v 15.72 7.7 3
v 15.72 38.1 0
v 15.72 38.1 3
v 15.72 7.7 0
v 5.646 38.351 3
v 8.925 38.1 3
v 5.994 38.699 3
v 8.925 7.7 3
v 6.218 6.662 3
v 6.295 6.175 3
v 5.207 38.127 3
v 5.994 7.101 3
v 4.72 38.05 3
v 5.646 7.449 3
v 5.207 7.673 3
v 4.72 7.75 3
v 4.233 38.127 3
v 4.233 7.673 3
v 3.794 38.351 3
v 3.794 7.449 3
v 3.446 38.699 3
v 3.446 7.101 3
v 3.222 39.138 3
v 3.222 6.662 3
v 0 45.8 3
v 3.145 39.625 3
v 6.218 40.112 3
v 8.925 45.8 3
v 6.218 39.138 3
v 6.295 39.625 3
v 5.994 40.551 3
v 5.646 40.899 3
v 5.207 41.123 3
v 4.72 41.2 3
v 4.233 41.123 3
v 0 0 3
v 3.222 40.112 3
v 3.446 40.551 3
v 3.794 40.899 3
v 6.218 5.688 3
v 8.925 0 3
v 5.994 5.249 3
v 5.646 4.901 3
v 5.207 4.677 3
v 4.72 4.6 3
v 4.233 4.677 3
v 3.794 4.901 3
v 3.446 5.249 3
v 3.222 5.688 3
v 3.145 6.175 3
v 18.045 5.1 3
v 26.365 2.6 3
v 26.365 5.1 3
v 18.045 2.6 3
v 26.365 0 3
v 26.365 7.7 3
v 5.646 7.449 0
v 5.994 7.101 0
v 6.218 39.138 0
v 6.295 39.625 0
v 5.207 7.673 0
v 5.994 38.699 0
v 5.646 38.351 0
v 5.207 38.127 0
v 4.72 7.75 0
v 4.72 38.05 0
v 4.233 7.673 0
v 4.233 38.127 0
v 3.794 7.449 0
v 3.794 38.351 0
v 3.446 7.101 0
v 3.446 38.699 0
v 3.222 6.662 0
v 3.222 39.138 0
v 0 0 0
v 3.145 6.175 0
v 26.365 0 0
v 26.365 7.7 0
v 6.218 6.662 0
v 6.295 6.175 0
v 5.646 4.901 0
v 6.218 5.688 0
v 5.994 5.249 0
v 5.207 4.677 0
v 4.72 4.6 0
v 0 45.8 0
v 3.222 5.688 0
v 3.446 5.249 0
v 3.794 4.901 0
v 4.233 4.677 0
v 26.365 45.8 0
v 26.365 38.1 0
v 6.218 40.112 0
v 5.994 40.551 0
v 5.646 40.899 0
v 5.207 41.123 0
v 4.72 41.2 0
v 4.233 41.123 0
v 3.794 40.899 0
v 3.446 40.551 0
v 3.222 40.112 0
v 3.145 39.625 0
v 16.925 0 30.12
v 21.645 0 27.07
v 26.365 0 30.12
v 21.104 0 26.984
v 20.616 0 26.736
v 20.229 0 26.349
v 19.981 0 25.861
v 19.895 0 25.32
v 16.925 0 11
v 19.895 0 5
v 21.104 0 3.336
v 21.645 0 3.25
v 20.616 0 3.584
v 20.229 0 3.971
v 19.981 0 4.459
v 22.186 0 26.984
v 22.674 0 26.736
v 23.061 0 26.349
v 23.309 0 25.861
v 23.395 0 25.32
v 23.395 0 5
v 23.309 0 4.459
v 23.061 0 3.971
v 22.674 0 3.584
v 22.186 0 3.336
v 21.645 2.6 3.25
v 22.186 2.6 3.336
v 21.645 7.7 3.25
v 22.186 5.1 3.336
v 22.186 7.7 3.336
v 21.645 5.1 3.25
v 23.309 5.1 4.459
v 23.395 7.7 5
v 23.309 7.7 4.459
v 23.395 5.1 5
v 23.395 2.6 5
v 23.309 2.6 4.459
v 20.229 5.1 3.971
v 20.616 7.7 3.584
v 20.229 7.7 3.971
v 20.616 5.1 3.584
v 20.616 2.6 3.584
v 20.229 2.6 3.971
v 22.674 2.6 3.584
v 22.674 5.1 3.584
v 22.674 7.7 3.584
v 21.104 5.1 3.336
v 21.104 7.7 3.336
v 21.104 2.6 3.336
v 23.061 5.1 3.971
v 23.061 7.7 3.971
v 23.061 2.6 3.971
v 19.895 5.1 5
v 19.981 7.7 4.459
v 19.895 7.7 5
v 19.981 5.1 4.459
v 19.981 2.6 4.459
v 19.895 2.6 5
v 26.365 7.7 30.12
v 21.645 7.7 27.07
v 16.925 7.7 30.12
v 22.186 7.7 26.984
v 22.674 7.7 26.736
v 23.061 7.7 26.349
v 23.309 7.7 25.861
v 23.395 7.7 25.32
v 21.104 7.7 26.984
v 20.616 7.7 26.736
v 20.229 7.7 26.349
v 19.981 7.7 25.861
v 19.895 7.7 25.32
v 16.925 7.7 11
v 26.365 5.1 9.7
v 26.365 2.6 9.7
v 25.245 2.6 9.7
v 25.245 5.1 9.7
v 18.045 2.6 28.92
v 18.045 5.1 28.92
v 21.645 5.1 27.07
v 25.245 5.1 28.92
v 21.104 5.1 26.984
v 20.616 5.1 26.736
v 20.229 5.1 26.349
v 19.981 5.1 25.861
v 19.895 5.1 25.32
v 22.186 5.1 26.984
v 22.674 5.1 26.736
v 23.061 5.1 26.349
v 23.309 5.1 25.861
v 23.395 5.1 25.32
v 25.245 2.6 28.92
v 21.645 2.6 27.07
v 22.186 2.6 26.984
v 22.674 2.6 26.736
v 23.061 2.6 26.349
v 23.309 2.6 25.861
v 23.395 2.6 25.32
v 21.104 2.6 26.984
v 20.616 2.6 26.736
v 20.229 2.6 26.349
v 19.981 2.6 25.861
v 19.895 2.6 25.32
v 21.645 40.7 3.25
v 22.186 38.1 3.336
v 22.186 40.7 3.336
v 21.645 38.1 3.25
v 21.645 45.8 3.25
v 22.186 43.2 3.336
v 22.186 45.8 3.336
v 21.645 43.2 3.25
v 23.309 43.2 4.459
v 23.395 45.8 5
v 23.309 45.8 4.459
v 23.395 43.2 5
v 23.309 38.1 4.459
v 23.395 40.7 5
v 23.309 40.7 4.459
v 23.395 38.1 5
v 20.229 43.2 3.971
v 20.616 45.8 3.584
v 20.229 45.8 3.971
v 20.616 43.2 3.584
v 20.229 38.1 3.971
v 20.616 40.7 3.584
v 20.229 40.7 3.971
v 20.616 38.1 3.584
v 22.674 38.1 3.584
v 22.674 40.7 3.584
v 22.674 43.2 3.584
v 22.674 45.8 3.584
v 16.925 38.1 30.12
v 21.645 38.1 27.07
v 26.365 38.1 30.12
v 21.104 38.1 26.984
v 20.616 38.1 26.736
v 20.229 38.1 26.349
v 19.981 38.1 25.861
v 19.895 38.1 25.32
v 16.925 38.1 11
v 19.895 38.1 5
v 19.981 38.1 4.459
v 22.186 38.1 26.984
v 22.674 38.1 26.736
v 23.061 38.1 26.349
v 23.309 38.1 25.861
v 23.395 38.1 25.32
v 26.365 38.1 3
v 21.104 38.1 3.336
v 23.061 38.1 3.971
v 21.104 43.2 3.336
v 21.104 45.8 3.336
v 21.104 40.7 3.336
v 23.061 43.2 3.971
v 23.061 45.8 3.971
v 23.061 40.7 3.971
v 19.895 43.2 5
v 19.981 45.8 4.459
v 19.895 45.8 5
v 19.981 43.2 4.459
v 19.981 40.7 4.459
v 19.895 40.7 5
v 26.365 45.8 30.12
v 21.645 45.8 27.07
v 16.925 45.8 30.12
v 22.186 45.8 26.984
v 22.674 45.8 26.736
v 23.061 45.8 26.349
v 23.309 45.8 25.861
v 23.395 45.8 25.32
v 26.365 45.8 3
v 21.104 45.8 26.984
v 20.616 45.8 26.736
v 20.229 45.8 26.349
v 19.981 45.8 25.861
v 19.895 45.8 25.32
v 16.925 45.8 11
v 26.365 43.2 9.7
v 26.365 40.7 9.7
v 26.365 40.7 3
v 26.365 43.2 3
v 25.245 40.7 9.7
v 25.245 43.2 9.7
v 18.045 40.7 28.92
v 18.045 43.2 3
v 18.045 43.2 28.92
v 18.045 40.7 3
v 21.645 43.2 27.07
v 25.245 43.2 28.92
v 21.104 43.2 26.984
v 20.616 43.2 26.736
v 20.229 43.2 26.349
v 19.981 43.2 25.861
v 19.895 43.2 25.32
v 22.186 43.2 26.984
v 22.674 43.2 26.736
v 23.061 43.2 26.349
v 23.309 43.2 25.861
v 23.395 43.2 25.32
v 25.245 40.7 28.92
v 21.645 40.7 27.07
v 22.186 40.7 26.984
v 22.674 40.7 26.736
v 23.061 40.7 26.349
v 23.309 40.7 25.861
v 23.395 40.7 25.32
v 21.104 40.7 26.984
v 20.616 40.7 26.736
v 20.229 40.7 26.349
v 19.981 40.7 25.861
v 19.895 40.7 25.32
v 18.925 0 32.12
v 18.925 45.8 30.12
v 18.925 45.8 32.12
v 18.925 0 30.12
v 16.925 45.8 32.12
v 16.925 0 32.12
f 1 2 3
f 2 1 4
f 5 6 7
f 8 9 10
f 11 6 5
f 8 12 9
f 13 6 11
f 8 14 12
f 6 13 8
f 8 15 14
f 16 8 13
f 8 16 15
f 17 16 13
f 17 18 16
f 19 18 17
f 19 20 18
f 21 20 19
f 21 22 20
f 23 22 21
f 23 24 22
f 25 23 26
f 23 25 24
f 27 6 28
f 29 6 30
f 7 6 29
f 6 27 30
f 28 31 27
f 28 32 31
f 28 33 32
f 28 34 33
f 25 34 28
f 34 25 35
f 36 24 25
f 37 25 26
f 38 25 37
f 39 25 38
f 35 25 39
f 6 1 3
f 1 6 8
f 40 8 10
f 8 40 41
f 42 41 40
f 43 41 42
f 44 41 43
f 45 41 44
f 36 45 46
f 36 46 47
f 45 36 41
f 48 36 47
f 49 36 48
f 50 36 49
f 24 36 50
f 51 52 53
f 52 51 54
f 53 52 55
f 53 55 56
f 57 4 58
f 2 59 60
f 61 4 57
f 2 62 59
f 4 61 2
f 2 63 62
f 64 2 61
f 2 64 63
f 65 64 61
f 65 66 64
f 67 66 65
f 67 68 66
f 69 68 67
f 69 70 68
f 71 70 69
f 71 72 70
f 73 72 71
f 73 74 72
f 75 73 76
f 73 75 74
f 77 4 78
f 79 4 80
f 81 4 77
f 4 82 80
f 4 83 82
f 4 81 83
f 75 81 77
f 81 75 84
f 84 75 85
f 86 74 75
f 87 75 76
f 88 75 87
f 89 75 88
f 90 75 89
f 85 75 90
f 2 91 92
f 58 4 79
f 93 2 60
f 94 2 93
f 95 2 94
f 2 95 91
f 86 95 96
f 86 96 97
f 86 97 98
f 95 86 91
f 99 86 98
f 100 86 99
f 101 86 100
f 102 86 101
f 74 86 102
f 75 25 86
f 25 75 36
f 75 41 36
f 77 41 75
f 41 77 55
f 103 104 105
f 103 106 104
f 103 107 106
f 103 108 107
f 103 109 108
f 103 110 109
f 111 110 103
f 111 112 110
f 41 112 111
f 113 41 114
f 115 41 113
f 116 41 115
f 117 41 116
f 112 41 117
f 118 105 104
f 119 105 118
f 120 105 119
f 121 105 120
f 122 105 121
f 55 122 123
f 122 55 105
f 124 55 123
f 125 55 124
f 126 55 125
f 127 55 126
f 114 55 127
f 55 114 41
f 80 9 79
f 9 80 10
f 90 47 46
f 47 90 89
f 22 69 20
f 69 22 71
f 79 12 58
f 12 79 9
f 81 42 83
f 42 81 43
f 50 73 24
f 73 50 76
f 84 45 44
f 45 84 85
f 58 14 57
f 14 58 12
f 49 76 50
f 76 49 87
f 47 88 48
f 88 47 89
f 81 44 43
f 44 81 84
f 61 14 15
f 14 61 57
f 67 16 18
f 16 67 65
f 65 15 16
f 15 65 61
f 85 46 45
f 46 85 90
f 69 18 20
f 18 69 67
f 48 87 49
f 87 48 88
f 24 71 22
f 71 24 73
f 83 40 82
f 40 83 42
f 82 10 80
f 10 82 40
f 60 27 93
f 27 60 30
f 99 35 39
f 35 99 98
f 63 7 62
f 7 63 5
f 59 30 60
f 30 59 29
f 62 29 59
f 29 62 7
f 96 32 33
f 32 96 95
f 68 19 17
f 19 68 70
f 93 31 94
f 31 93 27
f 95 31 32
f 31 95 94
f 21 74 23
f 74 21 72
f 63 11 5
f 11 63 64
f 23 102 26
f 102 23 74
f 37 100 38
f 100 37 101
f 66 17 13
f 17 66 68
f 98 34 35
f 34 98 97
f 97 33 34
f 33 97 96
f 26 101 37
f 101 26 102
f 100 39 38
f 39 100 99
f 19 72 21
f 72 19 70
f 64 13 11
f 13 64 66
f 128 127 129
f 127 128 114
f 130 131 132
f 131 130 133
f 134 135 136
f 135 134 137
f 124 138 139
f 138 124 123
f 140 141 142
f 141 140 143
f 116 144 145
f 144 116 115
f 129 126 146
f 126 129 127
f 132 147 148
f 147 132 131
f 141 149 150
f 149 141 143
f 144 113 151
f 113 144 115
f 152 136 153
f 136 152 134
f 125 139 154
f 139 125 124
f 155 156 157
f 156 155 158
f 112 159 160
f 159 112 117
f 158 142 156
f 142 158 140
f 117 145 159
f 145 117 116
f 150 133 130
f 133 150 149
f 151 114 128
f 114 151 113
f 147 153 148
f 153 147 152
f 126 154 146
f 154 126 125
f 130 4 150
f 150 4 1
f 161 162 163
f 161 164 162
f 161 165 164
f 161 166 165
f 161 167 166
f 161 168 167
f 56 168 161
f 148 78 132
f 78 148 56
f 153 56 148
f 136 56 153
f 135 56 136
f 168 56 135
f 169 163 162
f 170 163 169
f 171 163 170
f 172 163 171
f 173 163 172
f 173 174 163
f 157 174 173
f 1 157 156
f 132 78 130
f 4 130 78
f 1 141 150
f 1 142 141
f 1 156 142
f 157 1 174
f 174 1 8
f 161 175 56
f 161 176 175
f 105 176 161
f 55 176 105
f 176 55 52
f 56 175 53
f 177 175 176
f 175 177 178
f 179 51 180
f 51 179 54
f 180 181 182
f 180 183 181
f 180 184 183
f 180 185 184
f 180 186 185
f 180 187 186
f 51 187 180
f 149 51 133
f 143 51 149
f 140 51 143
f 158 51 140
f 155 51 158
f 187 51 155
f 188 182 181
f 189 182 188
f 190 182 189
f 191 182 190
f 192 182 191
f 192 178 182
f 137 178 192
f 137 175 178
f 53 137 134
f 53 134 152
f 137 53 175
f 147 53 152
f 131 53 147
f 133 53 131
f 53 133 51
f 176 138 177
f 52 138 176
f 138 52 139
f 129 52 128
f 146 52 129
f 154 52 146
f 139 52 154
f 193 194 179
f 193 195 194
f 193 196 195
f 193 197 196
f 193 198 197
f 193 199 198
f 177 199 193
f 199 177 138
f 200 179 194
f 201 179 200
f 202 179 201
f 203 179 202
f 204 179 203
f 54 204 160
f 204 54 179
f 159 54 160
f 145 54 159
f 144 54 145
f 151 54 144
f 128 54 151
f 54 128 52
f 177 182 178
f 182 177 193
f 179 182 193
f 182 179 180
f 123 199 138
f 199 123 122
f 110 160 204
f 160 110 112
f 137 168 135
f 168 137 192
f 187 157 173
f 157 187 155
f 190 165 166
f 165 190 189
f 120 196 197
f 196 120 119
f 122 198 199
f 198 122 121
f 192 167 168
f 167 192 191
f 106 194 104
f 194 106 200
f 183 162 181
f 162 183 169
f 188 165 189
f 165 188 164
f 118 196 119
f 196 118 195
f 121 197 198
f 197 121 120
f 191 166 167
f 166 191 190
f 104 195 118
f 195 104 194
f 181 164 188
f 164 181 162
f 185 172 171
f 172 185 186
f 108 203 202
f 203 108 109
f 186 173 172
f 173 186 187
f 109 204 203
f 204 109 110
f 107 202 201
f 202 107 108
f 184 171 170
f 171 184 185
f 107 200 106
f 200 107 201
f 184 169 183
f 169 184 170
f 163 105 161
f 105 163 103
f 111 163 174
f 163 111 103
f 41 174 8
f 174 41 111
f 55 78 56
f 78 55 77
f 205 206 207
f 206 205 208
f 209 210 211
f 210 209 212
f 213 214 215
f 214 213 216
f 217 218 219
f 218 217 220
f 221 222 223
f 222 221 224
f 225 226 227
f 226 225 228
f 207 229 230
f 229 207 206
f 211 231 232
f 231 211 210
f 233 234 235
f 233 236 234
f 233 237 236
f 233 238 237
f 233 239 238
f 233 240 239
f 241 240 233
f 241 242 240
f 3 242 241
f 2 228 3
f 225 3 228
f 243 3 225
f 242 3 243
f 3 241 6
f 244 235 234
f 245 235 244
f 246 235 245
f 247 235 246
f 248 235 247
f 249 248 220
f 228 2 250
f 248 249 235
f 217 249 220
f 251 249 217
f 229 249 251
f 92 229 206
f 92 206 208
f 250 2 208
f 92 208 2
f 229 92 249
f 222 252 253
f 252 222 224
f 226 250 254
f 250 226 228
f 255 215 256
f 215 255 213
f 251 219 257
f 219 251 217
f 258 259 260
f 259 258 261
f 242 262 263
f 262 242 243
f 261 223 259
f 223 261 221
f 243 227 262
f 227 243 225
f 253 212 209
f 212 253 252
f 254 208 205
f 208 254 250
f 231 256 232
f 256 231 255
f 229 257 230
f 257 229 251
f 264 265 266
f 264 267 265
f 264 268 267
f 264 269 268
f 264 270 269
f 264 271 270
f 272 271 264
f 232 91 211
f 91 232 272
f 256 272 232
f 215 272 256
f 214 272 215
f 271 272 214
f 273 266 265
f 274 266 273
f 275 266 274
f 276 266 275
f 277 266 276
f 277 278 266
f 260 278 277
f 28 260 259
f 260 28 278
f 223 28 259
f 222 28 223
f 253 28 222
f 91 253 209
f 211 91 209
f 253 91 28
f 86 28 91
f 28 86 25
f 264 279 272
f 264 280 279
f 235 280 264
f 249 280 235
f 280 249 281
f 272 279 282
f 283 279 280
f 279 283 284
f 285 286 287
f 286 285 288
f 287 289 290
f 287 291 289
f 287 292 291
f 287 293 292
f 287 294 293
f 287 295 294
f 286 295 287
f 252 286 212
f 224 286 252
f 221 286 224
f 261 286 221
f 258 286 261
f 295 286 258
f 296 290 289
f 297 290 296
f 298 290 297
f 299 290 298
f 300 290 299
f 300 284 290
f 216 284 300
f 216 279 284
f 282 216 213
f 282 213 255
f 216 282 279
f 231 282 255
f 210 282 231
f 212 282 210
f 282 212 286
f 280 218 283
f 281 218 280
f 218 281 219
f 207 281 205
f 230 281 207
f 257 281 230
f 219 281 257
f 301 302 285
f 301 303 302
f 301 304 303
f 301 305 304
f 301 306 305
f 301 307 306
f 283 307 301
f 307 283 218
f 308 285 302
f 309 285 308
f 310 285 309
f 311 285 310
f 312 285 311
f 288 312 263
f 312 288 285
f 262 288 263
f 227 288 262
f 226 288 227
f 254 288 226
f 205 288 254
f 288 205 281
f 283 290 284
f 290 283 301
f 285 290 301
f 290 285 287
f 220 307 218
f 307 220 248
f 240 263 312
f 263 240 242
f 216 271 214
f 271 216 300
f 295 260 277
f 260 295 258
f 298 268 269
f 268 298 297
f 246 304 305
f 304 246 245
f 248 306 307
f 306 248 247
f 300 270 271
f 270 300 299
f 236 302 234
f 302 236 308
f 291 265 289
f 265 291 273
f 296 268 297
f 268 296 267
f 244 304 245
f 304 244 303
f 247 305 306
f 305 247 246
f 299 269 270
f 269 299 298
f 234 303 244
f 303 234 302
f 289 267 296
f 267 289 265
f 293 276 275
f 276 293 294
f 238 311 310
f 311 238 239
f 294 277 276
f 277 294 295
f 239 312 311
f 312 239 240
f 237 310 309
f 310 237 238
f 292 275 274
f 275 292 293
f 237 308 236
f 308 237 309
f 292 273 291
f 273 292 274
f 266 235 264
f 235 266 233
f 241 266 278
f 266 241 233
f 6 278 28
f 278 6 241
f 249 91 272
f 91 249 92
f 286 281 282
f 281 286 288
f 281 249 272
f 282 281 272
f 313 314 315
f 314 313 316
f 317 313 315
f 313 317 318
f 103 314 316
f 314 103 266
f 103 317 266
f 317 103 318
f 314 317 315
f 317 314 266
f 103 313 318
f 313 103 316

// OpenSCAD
// following params are from top_plate_nobracket.scad
mainPlateThickness = 1.2;
mainPlateDimensions = [56, 45.8, mainPlateThickness];
usbDimensions = [10.36, 13, mainPlateThickness];

smallDia = 3.15;
quadHoleGaps = [11.75, 16.8];
pairQuadHoleXGap = 14.5;
pairHoleYGap = 33.45;
bigHoleOffset = [2.425, quadHoleGaps[1]/2];

// this is basically the padding of the gap between the pair of mounting holes and the center of coupler along x
hbot=4.72; // versions = [4, 5, 4.72]
bottomPlateThickness=3; // versions = [1.2, 1.8, 3]
pairHoleCouplerXGap = pairQuadHoleXGap + bigHoleOffset[0]; // 16.925
pairHoleHotendXGap = 11; // versions = [9,12,11]
hotendY = 30; // size of hotend (heatsink talaga) along y axis
hotendZ = 30 + 0.12; // sizeo f hotend (heatsink talaga) along z axis
verticalHeight=hotendZ; // hotendZ = 30, kaya may +1 kasi maybridge na lulundo, off ko muna ang +1 kasi may bridge naman na;
topBeamThickness = 2; //ito ang bridge para hindi sakang ang verticals
hotendEdgeYOffset = (mainPlateDimensions[1] - hotendY)/2 - 0.2; echo("heYOff", hotendEdgeYOffset); // -0.2 kasi sobrang sikip ng true value
bottomBeamDimensions=[pairHoleHotendXGap + hbot, mainPlateDimensions[1], bottomPlateThickness];
module bottomPlate(sizeBeam=bottomBeamDimensions, d=smallDia, hcXGap=pairHoleCouplerXGap, heYOff=hotendEdgeYOffset, hh=bottomBeamDimensions[2], hbot=hbot) {
    module bottomPlateSolid() {
        //translate([0,(sizeBeam[1]-pairHoleYGap)/2,0])
        difference() {
            union() {
                bottomPlateHorizontal();
                bottomPlateSide();
                translate([0, sizeBeam[1]-heYOff, 0])
                    bottomPlateSide();
                translate([hcXGap, 0, verticalHeight]) // bridge between the verticals
                    bottomPlateHorizontal(dPlate=[2,mainPlateDimensions[1],2]);
            };
            translate([hbot, (sizeBeam[1]-pairHoleYGap)/2,0])
                bottomPlateHoles();
        };
    };
    bottomPlateSolid(); //bottomPlate amounts to this

    module bottomPlateHoles(d=smallDia, gap=pairHoleYGap , h=hh) {
        cylinder(d=d, h=h, $fn=20);
        translate([0, gap, 0]) cylinder(d=d, h=h, $fn=20);
    };
   // bottomPlateHoles();

    module bottomPlateHorizontal(dPlate=sizeBeam, h=sizeBeam[2]) {
        module bottomPlateUsb() {
            usbCutoutX = hbot - 4.74; // 4.74 is the gap between the pair of holes and edge of cutout
            cube([usbCutoutX, usbDimensions[1], sizeBeam[2]]);
    };
        difference() {
            cube(dPlate);
            translate([0,(sizeBeam[1]-usbDimensions[1])/2,0])
                bottomPlateUsb();
        };
    };
    //bottomPlateHorizontal();

    module bottomPlateSide() {
        cube([hcXGap + 2*hbot, heYOff, sizeBeam[2]]); // this is where the hbot as padding kicks in
        chamferHeight=2*hbot;
        // distance of the "zero" nut position from the base
        nutBaseOffset=5; // versions = [6, 5]
        nutDia=7.2; // versions = [6, 7, 6.4, 7.2]
        boltDia=3.5;
        nutHeight=2.5; // versions = [3, 2.5] // ito ang kapal ng _nakahiga_ na nut
        roofHeight=1.2;
        module bottomPlateVertical(s=hbot, h=verticalHeight, c=chamferHeight) {
            module bottomPlateChamfer(c=c) {
                translate([0,heYOff,0]) rotate([90,0,0])
                linear_extrude(height=heYOff) {
                        polygon(points=[[0,0],[0,c],[-c,0]]);
                }
            };
            bottomPlateChamfer(); //gotta call this if I want a chamfer
            module nutSlot(dn=nutDia, nh=nutHeight, db=boltDia, nih=nutBaseOffset, rh=roofHeight) {
            // nih means nut initial height (from base)
            nsYOff = (heYOff - nh)/2; // nutSlotOffset
            bsXOff = (dn - db)/2; // boltSlotXOffset
            bsY = (heYOff-nh)/2; // bolt slot Y thickness
            vSlotZ = h-rh-nih; // vertical slots height
                translate([s, 0, nih]) rotate([-90,0,0]) // horizontal hole at the column base
                    cylinder(h=heYOff, d=db, $fn=20);
                translate([s-dn/2, nsYOff, nih/2]) cube([s+dn/2, nh, dn]); // horizontal nut slot
                translate([s-dn/2, nsYOff, nih]) cube([dn, nh, vSlotZ]); // vertical nut slot
                translate([s-dn/2+bsXOff, 0, nih]) cube([db, bsY, vSlotZ-dn/2]); // vertical bolt slot 1
                translate([s-dn/2+bsXOff, heYOff-bsY, nih]) cube([db, bsY, vSlotZ-dn/2]); // vertical bolt slot 2
                translate([s, 0, h-rh-dn/2]) rotate([-90,0,0]) // horizontal hole at the column top
                    cylinder(h=heYOff, d=db, $fn=20);
            };
            //nutSlot(nh=2.5);
            difference() {
                cube([s*2,heYOff,h]);
                nutSlot(nh=2.5);
            };
        };
        translate([hcXGap, 0, 0])
            bottomPlateVertical(c=11); 
    };
    //bottomPlateSide();
};
bottomPlate();
